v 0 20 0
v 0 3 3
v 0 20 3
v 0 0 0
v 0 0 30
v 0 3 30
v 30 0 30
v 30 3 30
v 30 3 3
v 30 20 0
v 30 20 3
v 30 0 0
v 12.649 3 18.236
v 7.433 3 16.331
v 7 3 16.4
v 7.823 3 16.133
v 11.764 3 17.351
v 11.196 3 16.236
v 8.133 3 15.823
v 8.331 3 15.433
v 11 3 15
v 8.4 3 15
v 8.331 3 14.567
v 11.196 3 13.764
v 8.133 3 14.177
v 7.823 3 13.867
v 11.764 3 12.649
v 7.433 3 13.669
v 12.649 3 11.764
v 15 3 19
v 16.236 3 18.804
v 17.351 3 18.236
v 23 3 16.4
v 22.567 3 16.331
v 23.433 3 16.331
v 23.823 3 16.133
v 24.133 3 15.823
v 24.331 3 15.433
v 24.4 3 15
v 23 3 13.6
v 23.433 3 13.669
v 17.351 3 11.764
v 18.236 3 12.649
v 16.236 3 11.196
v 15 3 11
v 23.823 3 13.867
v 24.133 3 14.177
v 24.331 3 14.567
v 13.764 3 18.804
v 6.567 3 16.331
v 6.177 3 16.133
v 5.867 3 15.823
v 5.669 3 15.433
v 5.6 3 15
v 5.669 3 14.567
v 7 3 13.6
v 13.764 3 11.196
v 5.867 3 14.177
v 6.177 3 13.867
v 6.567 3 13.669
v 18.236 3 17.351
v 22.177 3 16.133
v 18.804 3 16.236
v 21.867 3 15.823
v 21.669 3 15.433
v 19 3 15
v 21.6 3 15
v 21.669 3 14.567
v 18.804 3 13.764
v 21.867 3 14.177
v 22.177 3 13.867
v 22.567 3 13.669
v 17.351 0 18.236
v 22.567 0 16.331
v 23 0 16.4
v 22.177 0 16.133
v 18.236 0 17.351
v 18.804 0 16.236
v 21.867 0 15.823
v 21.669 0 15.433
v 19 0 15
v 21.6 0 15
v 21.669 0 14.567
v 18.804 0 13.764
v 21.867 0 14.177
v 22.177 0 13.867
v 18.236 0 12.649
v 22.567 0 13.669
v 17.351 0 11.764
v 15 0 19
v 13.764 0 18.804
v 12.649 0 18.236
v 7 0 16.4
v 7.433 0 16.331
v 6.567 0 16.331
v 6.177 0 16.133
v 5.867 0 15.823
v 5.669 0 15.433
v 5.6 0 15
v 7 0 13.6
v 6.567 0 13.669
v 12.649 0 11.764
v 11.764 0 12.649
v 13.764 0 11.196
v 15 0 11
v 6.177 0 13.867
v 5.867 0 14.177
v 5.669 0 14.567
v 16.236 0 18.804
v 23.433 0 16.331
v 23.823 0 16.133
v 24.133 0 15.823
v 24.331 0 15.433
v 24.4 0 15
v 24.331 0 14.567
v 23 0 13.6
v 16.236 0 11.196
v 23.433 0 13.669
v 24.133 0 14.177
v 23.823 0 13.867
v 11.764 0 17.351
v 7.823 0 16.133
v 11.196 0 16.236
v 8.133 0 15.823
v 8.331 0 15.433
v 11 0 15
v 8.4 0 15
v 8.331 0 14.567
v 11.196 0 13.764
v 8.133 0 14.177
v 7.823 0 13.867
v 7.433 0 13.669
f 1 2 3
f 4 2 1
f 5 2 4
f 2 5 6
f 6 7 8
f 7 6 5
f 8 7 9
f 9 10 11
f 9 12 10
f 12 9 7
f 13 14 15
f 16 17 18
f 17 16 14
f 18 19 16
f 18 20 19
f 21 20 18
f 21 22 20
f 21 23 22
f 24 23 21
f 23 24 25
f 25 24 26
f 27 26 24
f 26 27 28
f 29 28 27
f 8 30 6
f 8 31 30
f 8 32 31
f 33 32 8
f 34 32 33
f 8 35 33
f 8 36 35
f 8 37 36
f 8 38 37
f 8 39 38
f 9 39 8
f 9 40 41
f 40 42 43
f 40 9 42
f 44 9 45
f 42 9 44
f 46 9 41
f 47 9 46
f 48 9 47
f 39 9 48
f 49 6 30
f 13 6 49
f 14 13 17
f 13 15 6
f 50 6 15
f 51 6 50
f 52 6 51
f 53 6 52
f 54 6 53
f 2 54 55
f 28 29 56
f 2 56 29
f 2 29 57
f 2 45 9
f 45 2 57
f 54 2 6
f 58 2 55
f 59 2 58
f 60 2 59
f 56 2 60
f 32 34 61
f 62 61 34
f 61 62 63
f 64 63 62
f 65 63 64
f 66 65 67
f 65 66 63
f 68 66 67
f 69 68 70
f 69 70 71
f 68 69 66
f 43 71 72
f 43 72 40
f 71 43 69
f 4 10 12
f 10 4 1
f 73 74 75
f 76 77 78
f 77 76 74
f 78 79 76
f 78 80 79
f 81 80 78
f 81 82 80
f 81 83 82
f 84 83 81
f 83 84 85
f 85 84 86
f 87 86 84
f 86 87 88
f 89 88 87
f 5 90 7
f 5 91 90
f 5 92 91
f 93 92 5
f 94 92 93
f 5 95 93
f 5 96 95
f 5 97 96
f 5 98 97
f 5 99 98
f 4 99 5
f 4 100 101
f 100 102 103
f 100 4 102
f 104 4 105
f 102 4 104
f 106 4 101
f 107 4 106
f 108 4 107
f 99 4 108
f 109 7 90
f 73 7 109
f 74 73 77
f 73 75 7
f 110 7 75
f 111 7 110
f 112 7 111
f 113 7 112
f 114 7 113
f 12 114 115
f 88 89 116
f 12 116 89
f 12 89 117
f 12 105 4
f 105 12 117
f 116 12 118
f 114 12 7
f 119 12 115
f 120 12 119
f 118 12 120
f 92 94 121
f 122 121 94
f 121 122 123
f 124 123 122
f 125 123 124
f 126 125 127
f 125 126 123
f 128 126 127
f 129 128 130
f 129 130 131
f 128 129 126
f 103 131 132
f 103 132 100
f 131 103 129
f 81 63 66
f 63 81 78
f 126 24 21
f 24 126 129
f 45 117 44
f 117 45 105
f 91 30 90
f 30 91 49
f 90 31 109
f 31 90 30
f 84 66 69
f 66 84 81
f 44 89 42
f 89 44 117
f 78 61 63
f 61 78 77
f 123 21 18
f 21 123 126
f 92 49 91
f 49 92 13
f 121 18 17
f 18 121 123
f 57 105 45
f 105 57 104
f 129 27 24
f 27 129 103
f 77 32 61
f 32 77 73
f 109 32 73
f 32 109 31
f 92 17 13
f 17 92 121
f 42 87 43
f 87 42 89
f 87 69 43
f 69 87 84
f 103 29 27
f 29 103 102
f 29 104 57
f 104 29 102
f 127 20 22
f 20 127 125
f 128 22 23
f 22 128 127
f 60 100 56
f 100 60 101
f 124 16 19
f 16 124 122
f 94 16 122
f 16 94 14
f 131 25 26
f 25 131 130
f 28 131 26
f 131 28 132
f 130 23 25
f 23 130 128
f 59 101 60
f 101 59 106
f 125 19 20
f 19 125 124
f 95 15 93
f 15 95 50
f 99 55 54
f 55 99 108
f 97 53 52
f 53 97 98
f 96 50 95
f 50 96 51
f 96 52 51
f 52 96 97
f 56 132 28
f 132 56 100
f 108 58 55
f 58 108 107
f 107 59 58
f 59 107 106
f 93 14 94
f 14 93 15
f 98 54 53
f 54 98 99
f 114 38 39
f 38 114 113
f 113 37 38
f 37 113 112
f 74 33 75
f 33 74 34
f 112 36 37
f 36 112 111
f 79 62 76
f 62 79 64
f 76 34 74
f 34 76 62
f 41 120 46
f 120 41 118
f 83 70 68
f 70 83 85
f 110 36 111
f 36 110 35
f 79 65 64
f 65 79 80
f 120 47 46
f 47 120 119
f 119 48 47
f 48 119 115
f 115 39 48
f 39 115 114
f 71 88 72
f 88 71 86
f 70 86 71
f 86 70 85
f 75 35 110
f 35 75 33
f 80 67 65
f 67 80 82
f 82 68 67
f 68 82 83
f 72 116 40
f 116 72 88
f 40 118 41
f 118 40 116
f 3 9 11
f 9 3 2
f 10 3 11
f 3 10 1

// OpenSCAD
difference(){
    cube([30,3,30]);

    translate([15,5,15]){
        rotate([90,0,0]){
            cylinder(10,4,4, $fn=20);
        }
    }
    
    translate([7,5,15]){
        rotate([90,0,0]){
            cylinder(10,1.4,1.4, $fn=20);
        }
    }

    translate([23,5,15]){
        rotate([90,0,0]){
            cylinder(10,1.4,1.4, $fn=20);
        }
    }


}


cube([30,20,3]);
